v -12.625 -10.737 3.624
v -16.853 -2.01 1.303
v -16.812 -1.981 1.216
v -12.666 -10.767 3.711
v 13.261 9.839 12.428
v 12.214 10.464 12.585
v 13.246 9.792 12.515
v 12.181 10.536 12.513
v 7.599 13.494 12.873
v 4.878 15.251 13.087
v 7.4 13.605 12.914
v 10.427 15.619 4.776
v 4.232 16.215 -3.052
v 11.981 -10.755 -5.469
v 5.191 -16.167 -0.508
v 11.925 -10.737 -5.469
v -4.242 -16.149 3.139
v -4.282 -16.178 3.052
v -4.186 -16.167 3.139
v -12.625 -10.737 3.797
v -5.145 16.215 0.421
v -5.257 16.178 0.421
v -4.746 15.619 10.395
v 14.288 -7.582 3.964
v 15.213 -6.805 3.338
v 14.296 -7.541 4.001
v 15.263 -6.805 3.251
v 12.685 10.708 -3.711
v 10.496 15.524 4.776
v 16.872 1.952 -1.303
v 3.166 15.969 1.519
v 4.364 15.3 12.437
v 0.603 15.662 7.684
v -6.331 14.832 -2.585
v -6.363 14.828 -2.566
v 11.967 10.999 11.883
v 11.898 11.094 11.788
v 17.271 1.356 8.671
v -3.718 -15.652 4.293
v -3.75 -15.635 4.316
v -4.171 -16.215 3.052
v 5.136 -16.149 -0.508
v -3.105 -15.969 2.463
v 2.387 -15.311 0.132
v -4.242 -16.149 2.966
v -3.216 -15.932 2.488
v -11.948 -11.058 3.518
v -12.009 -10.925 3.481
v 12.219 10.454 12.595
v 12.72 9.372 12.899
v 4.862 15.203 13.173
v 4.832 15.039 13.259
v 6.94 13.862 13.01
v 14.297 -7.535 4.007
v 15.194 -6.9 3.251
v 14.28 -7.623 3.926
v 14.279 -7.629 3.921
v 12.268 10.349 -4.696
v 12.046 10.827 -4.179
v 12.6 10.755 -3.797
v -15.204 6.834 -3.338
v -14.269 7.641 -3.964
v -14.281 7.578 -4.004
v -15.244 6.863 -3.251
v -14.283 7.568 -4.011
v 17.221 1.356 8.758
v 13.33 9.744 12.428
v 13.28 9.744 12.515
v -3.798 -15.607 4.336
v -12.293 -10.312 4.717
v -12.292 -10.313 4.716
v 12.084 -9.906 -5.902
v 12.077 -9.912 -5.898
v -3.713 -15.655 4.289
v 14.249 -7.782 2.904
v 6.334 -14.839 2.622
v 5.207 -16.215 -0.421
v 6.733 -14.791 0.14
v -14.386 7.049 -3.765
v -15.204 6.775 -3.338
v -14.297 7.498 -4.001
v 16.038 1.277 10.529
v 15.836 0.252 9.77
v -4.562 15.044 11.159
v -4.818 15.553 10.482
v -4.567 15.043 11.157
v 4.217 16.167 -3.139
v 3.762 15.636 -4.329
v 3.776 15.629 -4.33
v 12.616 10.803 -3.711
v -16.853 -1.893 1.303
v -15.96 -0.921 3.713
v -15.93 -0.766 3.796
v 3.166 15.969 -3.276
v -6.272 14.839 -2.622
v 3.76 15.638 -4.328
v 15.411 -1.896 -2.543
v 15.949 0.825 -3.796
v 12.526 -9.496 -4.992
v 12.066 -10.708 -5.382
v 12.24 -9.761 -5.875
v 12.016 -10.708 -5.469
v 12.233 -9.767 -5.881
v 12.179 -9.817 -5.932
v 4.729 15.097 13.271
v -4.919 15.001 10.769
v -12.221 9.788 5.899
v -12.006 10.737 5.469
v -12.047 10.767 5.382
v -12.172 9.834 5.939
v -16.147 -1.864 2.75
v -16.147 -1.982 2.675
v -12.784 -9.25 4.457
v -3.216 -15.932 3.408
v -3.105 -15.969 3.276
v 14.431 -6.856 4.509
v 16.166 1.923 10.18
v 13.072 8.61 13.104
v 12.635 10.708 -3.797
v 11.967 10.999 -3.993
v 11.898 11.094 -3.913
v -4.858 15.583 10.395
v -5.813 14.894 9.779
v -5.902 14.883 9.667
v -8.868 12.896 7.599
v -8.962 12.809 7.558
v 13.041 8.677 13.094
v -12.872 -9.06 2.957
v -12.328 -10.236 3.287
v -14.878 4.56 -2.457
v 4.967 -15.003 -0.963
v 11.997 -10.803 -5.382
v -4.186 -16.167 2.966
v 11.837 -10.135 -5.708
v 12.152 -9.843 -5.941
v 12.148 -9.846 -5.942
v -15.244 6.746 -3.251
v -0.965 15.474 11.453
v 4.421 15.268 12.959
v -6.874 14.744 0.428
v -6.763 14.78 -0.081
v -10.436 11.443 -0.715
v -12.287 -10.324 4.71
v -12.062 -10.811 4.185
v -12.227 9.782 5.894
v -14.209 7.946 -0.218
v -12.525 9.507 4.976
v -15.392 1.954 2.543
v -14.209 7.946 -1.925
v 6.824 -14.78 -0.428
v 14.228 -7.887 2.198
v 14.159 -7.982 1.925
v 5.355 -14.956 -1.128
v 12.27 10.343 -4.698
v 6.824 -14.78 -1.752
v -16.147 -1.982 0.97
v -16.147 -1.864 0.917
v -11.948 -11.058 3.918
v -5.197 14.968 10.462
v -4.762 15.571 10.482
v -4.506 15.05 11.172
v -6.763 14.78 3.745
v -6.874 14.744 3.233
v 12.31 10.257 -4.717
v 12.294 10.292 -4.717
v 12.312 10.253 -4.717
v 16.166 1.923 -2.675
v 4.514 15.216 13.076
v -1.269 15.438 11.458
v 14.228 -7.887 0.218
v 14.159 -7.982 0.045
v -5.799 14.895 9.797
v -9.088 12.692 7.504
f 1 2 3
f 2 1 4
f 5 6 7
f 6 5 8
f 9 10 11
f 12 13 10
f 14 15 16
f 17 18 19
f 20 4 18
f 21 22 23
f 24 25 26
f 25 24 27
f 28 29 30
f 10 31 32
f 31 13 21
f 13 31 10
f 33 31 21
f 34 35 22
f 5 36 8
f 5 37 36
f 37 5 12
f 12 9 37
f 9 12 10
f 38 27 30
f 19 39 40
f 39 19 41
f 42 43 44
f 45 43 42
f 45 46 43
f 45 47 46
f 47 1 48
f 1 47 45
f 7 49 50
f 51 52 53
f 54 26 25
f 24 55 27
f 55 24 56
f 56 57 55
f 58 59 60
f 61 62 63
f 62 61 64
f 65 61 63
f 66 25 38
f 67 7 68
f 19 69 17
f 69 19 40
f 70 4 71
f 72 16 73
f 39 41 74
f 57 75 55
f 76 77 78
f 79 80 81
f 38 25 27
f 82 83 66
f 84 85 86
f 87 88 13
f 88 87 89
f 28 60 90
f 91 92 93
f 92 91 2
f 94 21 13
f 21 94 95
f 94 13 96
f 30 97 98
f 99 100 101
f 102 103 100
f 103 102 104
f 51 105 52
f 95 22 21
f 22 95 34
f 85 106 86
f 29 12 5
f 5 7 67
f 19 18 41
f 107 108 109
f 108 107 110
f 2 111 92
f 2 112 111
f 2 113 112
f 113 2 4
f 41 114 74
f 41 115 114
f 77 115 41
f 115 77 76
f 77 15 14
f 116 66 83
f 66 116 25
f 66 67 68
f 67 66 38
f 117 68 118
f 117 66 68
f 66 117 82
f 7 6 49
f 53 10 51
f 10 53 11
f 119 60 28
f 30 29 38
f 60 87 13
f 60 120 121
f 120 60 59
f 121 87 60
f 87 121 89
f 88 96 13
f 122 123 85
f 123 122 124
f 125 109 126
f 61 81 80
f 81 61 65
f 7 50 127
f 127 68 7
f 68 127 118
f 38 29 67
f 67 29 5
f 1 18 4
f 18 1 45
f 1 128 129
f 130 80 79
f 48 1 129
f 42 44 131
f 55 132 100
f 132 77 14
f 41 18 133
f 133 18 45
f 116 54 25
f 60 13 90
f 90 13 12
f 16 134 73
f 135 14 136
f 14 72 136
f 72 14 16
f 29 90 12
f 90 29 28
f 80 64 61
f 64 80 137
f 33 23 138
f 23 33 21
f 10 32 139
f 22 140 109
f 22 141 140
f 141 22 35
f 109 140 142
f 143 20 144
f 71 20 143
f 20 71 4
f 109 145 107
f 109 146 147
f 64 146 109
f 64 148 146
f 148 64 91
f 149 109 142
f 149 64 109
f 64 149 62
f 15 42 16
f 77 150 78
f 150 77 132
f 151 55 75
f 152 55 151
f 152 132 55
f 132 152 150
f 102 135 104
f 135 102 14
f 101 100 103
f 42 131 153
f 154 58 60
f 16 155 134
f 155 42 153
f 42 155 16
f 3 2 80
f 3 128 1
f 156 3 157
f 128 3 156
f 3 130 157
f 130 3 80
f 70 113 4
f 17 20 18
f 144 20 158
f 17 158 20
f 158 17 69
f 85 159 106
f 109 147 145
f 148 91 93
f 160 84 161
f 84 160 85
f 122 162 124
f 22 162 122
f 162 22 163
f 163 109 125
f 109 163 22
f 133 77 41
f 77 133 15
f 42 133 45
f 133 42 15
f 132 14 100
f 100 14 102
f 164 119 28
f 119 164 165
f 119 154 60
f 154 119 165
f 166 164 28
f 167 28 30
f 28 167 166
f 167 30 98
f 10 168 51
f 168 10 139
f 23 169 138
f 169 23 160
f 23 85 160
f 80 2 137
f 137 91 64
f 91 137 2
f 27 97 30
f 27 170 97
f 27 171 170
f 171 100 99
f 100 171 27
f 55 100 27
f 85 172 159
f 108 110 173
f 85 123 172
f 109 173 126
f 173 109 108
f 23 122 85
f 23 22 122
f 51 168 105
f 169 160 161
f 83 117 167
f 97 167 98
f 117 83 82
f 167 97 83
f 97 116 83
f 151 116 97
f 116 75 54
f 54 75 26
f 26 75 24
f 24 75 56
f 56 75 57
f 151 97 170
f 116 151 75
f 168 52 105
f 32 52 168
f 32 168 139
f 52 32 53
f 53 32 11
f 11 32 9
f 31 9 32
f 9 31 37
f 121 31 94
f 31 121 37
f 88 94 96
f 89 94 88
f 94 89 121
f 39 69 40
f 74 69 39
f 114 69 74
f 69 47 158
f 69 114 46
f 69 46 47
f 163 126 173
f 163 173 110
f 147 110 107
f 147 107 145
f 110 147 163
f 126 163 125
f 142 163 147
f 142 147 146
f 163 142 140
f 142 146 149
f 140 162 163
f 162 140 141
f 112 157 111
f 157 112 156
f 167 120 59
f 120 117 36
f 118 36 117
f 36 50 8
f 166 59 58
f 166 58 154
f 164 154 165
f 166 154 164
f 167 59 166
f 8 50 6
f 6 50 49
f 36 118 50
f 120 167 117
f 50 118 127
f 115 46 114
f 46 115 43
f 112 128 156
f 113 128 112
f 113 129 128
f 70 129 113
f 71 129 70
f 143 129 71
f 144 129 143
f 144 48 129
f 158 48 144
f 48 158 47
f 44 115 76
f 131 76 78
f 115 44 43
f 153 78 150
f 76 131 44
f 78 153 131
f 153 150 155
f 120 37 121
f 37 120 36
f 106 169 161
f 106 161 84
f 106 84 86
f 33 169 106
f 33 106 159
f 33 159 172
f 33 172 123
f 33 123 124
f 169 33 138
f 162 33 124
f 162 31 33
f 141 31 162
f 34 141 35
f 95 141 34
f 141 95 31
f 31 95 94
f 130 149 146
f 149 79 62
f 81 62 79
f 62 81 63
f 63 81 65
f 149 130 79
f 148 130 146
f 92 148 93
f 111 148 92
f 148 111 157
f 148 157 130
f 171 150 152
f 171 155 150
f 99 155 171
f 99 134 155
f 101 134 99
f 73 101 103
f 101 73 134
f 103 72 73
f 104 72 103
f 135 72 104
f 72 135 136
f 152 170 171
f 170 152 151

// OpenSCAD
// Auto-generated OpenSCAD file

    inner_points = 10*[[1.412777650098969, -0.7887289142225774, 0.5000000000000034], [1.4127776500989218, -0.7887289142226671, -0.4999999999999966], [-1.4127776500989218, 0.7887289142226671, 0.4999999999999966], [-1.412777650098969, 0.7887289142225774, -0.5000000000000034], [1.606564352039886, 0.19231477193561908, 0.4999999999999063], [1.6065643520398385, 0.19231477193552948, -0.5000000000000936], [0.6793579043664613, -1.4685049630575326, 0.5000000000000991], [0.6793579043664137, -1.4685049630576223, -0.49999999999990086], [-0.6793579043664137, 1.4685049630576223, 0.49999999999990086], [-0.6793579043664613, 1.4685049630575326, -0.5000000000000991], [-1.6065643520398385, -0.19231477193552948, 0.5000000000000936], [-1.606564352039886, -0.19231477193561908, -0.4999999999999063], [1.186698076615527, 1.0999007517531108, 0.49999999999984507], [1.1866980766154795, 1.0999007517530213, -0.500000000000155], [-0.31355347030812525, -1.5873620286524022, 0.500000000000157], [-0.3135534703081727, -1.5873620286524917, -0.49999999999984296], [0.3135534703081727, 1.5873620286524917, 0.49999999999984296], [0.31355347030812525, 1.5873620286524022, -0.500000000000157], [-1.1866980766154795, -1.0999007517530213, 0.500000000000155], [-1.186698076615527, -1.0999007517531108, -0.49999999999984507], [0.9356314635858262, -1.0094656781426679, 1.3506508083520856], [-1.3502907928204737, 0.2667245129793352, 1.3506508083520803], [1.2491849338939751, 0.5778963505097789, 1.3506508083519289], [-0.16359271620497018, 1.3666252647324013, 1.3506508083519253], [-0.6709328884540361, -1.2017804500782423, 1.3506508083521793], [0.8345256046592242, -0.16484481465374887, 1.8763819204711487], [-0.5782520454397211, 0.6238840995688734, 1.8763819204711452], [0.10110585892671631, -0.8446208634887041, 1.8763819204712444], [-0.772038747380638, -0.35715958658932323, 1.8763819204712422], [0.41465932923486515, 0.7427411651637427, 1.8763819204710874]];

    outer_points = 10*[[1.6771921982195477, 0.19515858012450776, -0.13028218445037648], [1.3574270510105522, -0.19515858012450776, -0.9936492935329229], [-1.3574270510105522, 0.19515858012450776, 0.9936492935329229], [-1.6771921982195477, -0.19515858012450776, 0.13028218445037648], [1.2584841650715657, 1.0707777336101003, -0.3710615046307498], [0.9387190178625701, 0.6804605733610847, -1.2344286137132965], [1.516339526221925, -0.6804605733610847, 0.3251489475118551], [1.1965743790129293, -1.0707777336101003, -0.5382181615706915], [-1.1965743790129293, 1.0707777336101003, 0.5382181615706915], [-1.516339526221925, 0.6804605733610847, -0.3251489475118551], [-0.9387190178625701, -0.6804605733610847, 1.2344286137132965], [-1.2584841650715657, -1.0707777336101003, 0.3710615046307498], [0.4201476640778902, 1.6119401316646074, -0.3052194965084559], [0.10038251686889449, 1.221622971415592, -1.1685866055910024], [0.8373664026005505, -1.221622971415592, 0.8212726783812108], [0.5176012553915548, -1.6119401316646074, -0.04209443070133567], [-0.5176012553915548, 1.6119401316646074, 0.04209443070133567], [-0.8373664026005505, 1.221622971415592, -0.8212726783812108], [-0.10038251686889449, -1.221622971415592, 1.1685866055910024], [-0.4201476640778902, -1.6119401316646074, 0.3052194965084559], [1.7170785381923828, 0.1355933980850842, 0.8671450404498573], [-0.7379800058921122, 0.1355933980850842, 1.7764247066512986], [1.03959470919633, 1.552374949625184, 0.4775559166099197], [-0.47771491541871985, 1.552374949625184, 1.0395216556015694], [0.6184769467253148, -0.7400257554005085, 1.6698900996218804], [1.3230216188344461, 0.9743992445242382, 1.2428096465623142], [-0.19428800578060368, 0.9743992445242382, 1.8047753855539637], [1.1621689468368233, 0.0987800910386456, 1.6982407785245455], [0.22442002736737826, 0.0987800910386456, 2.0455547057343373], [0.4846851178407707, 1.5155616425787453, 1.308651654684608]];

    // Convex hull for inner set (I)
    module inner_hull() {
        hull() {
            for (p = inner_points) {
                translate(p) sphere(r=0.1);
            }
        }
    }

    // Convex hull for outer set (O) minus inner hull (O \ I)
    module outer_minus_inner() {
        difference() {
            hull() {
                for (p = outer_points) {
                    translate(p) sphere(r=0.1);
                }
            }
            inner_hull(); // Subtract inner hull
        }
    }

    // Convex hull for outer set (O) minus all translated inner hulls
    module outer_minus_AllTranslationInner() {
        difference() {
            hull() {
                for (p = outer_points) {
                    translate(p) sphere(r=0.1);
                }
            }
            hull() {
                translate([0,0,50]) inner_hull();
                translate([0,0,-50]) inner_hull();
            }; // Subtract translated inner hulls
        }
    }

    // Difference between outer_minus_inner and outer_minus_AllTranslationInner
    module outer_minus_inner_diff() {
        difference() {
            // Outer minus inner
            difference() {
                hull() {
                    for (p = outer_points) {
                        translate(p) sphere(r=0.1);
                    }
                }
                inner_hull();
            }

            // Subtract Outer minus AllTranslationInner
            difference() {
                hull() {
                    for (p = outer_points) {
                        translate(p) sphere(r=0.1);
                    }
                }
                hull() {
                    translate([0,0,50]) inner_hull();
                    translate([0,0,-50]) inner_hull();
                };
            }
        }
    }

    // Rendering all with colors applied
    color([0, 1, 0, 1]) outer_minus_AllTranslationInner(); // Opaque green
    
